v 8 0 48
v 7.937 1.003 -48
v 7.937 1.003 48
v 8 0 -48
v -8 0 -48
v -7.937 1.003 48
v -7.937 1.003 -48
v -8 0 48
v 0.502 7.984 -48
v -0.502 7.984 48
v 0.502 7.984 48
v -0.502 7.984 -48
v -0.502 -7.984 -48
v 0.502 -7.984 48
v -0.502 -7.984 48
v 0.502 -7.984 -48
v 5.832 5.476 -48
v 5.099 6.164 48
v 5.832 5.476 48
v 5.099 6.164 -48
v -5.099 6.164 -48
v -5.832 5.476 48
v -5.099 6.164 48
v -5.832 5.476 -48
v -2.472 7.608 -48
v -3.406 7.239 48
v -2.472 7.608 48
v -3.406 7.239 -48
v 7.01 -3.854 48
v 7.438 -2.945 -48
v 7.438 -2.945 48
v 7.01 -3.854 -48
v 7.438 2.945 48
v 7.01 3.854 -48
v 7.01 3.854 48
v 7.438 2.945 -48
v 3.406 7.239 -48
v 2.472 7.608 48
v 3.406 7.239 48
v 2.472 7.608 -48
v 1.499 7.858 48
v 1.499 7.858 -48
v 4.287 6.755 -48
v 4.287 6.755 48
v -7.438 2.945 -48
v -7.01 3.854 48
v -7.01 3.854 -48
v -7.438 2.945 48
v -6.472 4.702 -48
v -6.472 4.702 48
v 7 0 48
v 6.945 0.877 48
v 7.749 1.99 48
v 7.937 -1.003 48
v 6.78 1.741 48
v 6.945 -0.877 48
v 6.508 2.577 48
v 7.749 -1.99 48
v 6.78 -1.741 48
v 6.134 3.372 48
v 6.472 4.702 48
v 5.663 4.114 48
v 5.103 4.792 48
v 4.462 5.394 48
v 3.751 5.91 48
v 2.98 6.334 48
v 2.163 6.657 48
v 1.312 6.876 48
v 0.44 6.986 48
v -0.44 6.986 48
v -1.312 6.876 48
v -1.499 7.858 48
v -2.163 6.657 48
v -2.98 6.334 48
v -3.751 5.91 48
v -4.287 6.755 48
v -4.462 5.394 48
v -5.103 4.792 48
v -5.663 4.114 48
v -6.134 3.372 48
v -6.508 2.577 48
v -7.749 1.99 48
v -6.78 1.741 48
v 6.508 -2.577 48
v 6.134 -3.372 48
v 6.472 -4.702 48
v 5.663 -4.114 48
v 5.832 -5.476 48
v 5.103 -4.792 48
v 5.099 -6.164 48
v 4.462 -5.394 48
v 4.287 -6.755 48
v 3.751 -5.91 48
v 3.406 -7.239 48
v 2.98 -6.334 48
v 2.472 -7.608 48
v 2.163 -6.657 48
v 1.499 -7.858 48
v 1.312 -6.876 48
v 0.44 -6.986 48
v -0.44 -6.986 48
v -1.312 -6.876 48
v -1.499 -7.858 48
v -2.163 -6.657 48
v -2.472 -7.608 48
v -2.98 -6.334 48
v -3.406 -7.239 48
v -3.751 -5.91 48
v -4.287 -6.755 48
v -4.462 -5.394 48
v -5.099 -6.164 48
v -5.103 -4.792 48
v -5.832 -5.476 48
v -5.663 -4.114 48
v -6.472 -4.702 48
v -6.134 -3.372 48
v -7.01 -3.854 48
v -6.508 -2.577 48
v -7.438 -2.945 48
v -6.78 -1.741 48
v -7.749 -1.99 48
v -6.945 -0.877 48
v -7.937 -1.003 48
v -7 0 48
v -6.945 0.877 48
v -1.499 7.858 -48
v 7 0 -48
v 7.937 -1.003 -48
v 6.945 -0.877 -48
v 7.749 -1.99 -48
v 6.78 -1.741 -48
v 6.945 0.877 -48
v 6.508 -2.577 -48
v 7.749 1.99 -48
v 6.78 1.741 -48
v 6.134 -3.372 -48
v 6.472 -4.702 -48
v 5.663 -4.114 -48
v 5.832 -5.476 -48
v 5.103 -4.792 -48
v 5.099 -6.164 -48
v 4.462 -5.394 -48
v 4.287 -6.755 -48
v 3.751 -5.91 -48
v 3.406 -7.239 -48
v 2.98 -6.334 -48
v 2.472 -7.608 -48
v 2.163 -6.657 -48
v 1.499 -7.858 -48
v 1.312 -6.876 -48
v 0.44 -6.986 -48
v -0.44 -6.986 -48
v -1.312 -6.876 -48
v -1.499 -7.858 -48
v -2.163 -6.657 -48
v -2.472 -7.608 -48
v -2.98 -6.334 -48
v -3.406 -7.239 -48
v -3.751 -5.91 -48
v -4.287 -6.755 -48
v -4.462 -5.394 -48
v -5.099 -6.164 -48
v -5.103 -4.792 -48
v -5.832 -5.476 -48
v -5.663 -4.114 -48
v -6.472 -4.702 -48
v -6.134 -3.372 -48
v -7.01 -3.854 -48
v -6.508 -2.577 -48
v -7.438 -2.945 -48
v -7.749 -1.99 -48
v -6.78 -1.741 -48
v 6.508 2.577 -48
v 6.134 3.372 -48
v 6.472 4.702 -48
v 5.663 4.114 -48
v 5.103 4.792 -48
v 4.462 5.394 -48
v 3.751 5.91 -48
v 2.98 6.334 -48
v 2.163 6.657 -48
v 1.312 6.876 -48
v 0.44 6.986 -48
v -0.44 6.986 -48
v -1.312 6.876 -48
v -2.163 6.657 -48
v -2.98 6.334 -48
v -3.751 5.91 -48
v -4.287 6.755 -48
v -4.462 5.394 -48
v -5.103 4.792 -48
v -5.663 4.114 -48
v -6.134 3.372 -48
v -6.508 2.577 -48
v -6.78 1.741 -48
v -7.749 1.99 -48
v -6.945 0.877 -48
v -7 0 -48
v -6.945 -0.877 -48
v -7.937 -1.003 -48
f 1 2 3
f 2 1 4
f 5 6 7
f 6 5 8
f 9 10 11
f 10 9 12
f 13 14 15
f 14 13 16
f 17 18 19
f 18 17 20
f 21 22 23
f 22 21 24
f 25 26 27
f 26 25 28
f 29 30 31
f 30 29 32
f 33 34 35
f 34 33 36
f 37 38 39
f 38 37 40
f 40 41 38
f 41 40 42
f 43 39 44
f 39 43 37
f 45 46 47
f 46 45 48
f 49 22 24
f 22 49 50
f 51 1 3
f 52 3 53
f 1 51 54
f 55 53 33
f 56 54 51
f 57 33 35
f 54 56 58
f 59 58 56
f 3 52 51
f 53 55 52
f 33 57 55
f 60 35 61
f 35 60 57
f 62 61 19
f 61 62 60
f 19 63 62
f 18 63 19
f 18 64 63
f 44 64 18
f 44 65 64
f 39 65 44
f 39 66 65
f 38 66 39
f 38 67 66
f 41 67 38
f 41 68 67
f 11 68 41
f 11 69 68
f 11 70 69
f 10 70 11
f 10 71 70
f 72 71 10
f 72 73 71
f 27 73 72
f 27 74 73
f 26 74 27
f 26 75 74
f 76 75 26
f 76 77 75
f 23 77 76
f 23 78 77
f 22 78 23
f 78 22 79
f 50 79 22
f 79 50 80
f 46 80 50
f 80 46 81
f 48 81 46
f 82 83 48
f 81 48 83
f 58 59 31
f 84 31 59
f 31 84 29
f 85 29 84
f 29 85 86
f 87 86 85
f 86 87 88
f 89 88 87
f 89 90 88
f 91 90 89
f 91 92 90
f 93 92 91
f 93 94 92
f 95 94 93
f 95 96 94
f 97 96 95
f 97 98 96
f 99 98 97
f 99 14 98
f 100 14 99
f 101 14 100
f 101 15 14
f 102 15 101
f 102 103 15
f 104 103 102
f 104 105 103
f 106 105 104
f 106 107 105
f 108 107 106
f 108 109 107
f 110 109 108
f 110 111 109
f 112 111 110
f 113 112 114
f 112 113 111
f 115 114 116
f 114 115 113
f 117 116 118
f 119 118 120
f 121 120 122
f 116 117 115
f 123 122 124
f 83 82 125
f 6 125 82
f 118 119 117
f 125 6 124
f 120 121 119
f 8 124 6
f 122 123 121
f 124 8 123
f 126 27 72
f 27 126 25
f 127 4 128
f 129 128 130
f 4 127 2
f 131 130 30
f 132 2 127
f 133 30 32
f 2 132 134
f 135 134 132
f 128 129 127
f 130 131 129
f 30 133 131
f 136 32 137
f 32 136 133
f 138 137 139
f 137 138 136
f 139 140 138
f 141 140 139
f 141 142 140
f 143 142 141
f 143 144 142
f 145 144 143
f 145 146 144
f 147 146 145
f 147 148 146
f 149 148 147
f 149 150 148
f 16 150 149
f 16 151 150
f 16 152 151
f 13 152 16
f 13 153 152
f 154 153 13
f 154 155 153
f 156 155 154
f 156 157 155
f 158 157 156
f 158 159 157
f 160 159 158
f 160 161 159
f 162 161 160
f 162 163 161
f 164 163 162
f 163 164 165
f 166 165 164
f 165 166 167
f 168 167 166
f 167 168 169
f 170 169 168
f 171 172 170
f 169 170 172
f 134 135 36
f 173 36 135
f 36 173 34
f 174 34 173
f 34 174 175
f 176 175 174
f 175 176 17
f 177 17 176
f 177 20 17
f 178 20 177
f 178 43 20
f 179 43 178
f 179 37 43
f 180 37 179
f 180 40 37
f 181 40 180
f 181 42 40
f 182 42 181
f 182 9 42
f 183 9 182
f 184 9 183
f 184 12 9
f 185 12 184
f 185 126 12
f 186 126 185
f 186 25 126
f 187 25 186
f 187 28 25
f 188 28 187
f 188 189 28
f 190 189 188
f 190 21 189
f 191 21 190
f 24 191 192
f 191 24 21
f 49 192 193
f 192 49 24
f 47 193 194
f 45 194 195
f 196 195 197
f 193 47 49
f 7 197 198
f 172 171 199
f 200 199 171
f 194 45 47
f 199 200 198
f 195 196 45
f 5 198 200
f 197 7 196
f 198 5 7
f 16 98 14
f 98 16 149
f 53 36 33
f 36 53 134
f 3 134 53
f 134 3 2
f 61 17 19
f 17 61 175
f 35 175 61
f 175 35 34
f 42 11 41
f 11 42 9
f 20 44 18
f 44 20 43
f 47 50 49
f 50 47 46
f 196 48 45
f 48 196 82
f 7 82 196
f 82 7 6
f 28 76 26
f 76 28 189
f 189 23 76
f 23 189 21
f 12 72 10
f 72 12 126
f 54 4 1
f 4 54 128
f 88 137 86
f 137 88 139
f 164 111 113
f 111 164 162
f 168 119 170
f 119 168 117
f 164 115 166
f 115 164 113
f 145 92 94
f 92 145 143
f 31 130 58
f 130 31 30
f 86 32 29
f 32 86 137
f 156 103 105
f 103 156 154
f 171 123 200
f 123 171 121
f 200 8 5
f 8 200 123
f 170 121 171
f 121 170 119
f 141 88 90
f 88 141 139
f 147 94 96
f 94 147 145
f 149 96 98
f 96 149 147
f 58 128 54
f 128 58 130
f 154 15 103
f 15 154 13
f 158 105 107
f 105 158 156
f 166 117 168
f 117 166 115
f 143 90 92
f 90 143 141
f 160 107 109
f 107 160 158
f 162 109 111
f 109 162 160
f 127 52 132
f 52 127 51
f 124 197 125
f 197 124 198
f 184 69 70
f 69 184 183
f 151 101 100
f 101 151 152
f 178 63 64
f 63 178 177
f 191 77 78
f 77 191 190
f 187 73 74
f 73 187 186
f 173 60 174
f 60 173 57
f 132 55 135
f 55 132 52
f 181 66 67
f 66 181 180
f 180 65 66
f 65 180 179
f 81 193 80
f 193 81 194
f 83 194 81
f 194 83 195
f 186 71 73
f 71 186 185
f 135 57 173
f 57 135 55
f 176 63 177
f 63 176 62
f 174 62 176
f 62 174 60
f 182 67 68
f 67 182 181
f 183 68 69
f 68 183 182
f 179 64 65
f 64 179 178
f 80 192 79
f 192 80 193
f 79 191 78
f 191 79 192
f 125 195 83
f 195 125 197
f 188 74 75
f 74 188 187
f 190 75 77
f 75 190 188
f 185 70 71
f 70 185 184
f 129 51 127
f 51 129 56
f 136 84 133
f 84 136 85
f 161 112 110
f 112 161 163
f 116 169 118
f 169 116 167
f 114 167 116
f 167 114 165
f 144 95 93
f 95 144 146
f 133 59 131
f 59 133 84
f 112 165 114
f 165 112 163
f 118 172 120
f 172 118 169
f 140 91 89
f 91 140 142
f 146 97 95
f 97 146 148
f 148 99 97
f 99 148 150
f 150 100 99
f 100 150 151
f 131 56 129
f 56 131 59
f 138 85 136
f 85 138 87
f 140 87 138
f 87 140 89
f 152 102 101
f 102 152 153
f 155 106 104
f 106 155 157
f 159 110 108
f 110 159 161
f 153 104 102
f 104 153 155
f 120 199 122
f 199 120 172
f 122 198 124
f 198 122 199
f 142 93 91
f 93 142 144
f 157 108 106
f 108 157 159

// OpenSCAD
$fn = 50;


difference() {
	union() {
		translate(v = [0, 0, -48.0000000000]) {
			cylinder(h = 96, r = 8.0000000000);
		}
	}
	union() {
		translate(v = [0, 0, -100.0000000000]) {
			cylinder(h = 200, r = 7);
		}
	}
}
